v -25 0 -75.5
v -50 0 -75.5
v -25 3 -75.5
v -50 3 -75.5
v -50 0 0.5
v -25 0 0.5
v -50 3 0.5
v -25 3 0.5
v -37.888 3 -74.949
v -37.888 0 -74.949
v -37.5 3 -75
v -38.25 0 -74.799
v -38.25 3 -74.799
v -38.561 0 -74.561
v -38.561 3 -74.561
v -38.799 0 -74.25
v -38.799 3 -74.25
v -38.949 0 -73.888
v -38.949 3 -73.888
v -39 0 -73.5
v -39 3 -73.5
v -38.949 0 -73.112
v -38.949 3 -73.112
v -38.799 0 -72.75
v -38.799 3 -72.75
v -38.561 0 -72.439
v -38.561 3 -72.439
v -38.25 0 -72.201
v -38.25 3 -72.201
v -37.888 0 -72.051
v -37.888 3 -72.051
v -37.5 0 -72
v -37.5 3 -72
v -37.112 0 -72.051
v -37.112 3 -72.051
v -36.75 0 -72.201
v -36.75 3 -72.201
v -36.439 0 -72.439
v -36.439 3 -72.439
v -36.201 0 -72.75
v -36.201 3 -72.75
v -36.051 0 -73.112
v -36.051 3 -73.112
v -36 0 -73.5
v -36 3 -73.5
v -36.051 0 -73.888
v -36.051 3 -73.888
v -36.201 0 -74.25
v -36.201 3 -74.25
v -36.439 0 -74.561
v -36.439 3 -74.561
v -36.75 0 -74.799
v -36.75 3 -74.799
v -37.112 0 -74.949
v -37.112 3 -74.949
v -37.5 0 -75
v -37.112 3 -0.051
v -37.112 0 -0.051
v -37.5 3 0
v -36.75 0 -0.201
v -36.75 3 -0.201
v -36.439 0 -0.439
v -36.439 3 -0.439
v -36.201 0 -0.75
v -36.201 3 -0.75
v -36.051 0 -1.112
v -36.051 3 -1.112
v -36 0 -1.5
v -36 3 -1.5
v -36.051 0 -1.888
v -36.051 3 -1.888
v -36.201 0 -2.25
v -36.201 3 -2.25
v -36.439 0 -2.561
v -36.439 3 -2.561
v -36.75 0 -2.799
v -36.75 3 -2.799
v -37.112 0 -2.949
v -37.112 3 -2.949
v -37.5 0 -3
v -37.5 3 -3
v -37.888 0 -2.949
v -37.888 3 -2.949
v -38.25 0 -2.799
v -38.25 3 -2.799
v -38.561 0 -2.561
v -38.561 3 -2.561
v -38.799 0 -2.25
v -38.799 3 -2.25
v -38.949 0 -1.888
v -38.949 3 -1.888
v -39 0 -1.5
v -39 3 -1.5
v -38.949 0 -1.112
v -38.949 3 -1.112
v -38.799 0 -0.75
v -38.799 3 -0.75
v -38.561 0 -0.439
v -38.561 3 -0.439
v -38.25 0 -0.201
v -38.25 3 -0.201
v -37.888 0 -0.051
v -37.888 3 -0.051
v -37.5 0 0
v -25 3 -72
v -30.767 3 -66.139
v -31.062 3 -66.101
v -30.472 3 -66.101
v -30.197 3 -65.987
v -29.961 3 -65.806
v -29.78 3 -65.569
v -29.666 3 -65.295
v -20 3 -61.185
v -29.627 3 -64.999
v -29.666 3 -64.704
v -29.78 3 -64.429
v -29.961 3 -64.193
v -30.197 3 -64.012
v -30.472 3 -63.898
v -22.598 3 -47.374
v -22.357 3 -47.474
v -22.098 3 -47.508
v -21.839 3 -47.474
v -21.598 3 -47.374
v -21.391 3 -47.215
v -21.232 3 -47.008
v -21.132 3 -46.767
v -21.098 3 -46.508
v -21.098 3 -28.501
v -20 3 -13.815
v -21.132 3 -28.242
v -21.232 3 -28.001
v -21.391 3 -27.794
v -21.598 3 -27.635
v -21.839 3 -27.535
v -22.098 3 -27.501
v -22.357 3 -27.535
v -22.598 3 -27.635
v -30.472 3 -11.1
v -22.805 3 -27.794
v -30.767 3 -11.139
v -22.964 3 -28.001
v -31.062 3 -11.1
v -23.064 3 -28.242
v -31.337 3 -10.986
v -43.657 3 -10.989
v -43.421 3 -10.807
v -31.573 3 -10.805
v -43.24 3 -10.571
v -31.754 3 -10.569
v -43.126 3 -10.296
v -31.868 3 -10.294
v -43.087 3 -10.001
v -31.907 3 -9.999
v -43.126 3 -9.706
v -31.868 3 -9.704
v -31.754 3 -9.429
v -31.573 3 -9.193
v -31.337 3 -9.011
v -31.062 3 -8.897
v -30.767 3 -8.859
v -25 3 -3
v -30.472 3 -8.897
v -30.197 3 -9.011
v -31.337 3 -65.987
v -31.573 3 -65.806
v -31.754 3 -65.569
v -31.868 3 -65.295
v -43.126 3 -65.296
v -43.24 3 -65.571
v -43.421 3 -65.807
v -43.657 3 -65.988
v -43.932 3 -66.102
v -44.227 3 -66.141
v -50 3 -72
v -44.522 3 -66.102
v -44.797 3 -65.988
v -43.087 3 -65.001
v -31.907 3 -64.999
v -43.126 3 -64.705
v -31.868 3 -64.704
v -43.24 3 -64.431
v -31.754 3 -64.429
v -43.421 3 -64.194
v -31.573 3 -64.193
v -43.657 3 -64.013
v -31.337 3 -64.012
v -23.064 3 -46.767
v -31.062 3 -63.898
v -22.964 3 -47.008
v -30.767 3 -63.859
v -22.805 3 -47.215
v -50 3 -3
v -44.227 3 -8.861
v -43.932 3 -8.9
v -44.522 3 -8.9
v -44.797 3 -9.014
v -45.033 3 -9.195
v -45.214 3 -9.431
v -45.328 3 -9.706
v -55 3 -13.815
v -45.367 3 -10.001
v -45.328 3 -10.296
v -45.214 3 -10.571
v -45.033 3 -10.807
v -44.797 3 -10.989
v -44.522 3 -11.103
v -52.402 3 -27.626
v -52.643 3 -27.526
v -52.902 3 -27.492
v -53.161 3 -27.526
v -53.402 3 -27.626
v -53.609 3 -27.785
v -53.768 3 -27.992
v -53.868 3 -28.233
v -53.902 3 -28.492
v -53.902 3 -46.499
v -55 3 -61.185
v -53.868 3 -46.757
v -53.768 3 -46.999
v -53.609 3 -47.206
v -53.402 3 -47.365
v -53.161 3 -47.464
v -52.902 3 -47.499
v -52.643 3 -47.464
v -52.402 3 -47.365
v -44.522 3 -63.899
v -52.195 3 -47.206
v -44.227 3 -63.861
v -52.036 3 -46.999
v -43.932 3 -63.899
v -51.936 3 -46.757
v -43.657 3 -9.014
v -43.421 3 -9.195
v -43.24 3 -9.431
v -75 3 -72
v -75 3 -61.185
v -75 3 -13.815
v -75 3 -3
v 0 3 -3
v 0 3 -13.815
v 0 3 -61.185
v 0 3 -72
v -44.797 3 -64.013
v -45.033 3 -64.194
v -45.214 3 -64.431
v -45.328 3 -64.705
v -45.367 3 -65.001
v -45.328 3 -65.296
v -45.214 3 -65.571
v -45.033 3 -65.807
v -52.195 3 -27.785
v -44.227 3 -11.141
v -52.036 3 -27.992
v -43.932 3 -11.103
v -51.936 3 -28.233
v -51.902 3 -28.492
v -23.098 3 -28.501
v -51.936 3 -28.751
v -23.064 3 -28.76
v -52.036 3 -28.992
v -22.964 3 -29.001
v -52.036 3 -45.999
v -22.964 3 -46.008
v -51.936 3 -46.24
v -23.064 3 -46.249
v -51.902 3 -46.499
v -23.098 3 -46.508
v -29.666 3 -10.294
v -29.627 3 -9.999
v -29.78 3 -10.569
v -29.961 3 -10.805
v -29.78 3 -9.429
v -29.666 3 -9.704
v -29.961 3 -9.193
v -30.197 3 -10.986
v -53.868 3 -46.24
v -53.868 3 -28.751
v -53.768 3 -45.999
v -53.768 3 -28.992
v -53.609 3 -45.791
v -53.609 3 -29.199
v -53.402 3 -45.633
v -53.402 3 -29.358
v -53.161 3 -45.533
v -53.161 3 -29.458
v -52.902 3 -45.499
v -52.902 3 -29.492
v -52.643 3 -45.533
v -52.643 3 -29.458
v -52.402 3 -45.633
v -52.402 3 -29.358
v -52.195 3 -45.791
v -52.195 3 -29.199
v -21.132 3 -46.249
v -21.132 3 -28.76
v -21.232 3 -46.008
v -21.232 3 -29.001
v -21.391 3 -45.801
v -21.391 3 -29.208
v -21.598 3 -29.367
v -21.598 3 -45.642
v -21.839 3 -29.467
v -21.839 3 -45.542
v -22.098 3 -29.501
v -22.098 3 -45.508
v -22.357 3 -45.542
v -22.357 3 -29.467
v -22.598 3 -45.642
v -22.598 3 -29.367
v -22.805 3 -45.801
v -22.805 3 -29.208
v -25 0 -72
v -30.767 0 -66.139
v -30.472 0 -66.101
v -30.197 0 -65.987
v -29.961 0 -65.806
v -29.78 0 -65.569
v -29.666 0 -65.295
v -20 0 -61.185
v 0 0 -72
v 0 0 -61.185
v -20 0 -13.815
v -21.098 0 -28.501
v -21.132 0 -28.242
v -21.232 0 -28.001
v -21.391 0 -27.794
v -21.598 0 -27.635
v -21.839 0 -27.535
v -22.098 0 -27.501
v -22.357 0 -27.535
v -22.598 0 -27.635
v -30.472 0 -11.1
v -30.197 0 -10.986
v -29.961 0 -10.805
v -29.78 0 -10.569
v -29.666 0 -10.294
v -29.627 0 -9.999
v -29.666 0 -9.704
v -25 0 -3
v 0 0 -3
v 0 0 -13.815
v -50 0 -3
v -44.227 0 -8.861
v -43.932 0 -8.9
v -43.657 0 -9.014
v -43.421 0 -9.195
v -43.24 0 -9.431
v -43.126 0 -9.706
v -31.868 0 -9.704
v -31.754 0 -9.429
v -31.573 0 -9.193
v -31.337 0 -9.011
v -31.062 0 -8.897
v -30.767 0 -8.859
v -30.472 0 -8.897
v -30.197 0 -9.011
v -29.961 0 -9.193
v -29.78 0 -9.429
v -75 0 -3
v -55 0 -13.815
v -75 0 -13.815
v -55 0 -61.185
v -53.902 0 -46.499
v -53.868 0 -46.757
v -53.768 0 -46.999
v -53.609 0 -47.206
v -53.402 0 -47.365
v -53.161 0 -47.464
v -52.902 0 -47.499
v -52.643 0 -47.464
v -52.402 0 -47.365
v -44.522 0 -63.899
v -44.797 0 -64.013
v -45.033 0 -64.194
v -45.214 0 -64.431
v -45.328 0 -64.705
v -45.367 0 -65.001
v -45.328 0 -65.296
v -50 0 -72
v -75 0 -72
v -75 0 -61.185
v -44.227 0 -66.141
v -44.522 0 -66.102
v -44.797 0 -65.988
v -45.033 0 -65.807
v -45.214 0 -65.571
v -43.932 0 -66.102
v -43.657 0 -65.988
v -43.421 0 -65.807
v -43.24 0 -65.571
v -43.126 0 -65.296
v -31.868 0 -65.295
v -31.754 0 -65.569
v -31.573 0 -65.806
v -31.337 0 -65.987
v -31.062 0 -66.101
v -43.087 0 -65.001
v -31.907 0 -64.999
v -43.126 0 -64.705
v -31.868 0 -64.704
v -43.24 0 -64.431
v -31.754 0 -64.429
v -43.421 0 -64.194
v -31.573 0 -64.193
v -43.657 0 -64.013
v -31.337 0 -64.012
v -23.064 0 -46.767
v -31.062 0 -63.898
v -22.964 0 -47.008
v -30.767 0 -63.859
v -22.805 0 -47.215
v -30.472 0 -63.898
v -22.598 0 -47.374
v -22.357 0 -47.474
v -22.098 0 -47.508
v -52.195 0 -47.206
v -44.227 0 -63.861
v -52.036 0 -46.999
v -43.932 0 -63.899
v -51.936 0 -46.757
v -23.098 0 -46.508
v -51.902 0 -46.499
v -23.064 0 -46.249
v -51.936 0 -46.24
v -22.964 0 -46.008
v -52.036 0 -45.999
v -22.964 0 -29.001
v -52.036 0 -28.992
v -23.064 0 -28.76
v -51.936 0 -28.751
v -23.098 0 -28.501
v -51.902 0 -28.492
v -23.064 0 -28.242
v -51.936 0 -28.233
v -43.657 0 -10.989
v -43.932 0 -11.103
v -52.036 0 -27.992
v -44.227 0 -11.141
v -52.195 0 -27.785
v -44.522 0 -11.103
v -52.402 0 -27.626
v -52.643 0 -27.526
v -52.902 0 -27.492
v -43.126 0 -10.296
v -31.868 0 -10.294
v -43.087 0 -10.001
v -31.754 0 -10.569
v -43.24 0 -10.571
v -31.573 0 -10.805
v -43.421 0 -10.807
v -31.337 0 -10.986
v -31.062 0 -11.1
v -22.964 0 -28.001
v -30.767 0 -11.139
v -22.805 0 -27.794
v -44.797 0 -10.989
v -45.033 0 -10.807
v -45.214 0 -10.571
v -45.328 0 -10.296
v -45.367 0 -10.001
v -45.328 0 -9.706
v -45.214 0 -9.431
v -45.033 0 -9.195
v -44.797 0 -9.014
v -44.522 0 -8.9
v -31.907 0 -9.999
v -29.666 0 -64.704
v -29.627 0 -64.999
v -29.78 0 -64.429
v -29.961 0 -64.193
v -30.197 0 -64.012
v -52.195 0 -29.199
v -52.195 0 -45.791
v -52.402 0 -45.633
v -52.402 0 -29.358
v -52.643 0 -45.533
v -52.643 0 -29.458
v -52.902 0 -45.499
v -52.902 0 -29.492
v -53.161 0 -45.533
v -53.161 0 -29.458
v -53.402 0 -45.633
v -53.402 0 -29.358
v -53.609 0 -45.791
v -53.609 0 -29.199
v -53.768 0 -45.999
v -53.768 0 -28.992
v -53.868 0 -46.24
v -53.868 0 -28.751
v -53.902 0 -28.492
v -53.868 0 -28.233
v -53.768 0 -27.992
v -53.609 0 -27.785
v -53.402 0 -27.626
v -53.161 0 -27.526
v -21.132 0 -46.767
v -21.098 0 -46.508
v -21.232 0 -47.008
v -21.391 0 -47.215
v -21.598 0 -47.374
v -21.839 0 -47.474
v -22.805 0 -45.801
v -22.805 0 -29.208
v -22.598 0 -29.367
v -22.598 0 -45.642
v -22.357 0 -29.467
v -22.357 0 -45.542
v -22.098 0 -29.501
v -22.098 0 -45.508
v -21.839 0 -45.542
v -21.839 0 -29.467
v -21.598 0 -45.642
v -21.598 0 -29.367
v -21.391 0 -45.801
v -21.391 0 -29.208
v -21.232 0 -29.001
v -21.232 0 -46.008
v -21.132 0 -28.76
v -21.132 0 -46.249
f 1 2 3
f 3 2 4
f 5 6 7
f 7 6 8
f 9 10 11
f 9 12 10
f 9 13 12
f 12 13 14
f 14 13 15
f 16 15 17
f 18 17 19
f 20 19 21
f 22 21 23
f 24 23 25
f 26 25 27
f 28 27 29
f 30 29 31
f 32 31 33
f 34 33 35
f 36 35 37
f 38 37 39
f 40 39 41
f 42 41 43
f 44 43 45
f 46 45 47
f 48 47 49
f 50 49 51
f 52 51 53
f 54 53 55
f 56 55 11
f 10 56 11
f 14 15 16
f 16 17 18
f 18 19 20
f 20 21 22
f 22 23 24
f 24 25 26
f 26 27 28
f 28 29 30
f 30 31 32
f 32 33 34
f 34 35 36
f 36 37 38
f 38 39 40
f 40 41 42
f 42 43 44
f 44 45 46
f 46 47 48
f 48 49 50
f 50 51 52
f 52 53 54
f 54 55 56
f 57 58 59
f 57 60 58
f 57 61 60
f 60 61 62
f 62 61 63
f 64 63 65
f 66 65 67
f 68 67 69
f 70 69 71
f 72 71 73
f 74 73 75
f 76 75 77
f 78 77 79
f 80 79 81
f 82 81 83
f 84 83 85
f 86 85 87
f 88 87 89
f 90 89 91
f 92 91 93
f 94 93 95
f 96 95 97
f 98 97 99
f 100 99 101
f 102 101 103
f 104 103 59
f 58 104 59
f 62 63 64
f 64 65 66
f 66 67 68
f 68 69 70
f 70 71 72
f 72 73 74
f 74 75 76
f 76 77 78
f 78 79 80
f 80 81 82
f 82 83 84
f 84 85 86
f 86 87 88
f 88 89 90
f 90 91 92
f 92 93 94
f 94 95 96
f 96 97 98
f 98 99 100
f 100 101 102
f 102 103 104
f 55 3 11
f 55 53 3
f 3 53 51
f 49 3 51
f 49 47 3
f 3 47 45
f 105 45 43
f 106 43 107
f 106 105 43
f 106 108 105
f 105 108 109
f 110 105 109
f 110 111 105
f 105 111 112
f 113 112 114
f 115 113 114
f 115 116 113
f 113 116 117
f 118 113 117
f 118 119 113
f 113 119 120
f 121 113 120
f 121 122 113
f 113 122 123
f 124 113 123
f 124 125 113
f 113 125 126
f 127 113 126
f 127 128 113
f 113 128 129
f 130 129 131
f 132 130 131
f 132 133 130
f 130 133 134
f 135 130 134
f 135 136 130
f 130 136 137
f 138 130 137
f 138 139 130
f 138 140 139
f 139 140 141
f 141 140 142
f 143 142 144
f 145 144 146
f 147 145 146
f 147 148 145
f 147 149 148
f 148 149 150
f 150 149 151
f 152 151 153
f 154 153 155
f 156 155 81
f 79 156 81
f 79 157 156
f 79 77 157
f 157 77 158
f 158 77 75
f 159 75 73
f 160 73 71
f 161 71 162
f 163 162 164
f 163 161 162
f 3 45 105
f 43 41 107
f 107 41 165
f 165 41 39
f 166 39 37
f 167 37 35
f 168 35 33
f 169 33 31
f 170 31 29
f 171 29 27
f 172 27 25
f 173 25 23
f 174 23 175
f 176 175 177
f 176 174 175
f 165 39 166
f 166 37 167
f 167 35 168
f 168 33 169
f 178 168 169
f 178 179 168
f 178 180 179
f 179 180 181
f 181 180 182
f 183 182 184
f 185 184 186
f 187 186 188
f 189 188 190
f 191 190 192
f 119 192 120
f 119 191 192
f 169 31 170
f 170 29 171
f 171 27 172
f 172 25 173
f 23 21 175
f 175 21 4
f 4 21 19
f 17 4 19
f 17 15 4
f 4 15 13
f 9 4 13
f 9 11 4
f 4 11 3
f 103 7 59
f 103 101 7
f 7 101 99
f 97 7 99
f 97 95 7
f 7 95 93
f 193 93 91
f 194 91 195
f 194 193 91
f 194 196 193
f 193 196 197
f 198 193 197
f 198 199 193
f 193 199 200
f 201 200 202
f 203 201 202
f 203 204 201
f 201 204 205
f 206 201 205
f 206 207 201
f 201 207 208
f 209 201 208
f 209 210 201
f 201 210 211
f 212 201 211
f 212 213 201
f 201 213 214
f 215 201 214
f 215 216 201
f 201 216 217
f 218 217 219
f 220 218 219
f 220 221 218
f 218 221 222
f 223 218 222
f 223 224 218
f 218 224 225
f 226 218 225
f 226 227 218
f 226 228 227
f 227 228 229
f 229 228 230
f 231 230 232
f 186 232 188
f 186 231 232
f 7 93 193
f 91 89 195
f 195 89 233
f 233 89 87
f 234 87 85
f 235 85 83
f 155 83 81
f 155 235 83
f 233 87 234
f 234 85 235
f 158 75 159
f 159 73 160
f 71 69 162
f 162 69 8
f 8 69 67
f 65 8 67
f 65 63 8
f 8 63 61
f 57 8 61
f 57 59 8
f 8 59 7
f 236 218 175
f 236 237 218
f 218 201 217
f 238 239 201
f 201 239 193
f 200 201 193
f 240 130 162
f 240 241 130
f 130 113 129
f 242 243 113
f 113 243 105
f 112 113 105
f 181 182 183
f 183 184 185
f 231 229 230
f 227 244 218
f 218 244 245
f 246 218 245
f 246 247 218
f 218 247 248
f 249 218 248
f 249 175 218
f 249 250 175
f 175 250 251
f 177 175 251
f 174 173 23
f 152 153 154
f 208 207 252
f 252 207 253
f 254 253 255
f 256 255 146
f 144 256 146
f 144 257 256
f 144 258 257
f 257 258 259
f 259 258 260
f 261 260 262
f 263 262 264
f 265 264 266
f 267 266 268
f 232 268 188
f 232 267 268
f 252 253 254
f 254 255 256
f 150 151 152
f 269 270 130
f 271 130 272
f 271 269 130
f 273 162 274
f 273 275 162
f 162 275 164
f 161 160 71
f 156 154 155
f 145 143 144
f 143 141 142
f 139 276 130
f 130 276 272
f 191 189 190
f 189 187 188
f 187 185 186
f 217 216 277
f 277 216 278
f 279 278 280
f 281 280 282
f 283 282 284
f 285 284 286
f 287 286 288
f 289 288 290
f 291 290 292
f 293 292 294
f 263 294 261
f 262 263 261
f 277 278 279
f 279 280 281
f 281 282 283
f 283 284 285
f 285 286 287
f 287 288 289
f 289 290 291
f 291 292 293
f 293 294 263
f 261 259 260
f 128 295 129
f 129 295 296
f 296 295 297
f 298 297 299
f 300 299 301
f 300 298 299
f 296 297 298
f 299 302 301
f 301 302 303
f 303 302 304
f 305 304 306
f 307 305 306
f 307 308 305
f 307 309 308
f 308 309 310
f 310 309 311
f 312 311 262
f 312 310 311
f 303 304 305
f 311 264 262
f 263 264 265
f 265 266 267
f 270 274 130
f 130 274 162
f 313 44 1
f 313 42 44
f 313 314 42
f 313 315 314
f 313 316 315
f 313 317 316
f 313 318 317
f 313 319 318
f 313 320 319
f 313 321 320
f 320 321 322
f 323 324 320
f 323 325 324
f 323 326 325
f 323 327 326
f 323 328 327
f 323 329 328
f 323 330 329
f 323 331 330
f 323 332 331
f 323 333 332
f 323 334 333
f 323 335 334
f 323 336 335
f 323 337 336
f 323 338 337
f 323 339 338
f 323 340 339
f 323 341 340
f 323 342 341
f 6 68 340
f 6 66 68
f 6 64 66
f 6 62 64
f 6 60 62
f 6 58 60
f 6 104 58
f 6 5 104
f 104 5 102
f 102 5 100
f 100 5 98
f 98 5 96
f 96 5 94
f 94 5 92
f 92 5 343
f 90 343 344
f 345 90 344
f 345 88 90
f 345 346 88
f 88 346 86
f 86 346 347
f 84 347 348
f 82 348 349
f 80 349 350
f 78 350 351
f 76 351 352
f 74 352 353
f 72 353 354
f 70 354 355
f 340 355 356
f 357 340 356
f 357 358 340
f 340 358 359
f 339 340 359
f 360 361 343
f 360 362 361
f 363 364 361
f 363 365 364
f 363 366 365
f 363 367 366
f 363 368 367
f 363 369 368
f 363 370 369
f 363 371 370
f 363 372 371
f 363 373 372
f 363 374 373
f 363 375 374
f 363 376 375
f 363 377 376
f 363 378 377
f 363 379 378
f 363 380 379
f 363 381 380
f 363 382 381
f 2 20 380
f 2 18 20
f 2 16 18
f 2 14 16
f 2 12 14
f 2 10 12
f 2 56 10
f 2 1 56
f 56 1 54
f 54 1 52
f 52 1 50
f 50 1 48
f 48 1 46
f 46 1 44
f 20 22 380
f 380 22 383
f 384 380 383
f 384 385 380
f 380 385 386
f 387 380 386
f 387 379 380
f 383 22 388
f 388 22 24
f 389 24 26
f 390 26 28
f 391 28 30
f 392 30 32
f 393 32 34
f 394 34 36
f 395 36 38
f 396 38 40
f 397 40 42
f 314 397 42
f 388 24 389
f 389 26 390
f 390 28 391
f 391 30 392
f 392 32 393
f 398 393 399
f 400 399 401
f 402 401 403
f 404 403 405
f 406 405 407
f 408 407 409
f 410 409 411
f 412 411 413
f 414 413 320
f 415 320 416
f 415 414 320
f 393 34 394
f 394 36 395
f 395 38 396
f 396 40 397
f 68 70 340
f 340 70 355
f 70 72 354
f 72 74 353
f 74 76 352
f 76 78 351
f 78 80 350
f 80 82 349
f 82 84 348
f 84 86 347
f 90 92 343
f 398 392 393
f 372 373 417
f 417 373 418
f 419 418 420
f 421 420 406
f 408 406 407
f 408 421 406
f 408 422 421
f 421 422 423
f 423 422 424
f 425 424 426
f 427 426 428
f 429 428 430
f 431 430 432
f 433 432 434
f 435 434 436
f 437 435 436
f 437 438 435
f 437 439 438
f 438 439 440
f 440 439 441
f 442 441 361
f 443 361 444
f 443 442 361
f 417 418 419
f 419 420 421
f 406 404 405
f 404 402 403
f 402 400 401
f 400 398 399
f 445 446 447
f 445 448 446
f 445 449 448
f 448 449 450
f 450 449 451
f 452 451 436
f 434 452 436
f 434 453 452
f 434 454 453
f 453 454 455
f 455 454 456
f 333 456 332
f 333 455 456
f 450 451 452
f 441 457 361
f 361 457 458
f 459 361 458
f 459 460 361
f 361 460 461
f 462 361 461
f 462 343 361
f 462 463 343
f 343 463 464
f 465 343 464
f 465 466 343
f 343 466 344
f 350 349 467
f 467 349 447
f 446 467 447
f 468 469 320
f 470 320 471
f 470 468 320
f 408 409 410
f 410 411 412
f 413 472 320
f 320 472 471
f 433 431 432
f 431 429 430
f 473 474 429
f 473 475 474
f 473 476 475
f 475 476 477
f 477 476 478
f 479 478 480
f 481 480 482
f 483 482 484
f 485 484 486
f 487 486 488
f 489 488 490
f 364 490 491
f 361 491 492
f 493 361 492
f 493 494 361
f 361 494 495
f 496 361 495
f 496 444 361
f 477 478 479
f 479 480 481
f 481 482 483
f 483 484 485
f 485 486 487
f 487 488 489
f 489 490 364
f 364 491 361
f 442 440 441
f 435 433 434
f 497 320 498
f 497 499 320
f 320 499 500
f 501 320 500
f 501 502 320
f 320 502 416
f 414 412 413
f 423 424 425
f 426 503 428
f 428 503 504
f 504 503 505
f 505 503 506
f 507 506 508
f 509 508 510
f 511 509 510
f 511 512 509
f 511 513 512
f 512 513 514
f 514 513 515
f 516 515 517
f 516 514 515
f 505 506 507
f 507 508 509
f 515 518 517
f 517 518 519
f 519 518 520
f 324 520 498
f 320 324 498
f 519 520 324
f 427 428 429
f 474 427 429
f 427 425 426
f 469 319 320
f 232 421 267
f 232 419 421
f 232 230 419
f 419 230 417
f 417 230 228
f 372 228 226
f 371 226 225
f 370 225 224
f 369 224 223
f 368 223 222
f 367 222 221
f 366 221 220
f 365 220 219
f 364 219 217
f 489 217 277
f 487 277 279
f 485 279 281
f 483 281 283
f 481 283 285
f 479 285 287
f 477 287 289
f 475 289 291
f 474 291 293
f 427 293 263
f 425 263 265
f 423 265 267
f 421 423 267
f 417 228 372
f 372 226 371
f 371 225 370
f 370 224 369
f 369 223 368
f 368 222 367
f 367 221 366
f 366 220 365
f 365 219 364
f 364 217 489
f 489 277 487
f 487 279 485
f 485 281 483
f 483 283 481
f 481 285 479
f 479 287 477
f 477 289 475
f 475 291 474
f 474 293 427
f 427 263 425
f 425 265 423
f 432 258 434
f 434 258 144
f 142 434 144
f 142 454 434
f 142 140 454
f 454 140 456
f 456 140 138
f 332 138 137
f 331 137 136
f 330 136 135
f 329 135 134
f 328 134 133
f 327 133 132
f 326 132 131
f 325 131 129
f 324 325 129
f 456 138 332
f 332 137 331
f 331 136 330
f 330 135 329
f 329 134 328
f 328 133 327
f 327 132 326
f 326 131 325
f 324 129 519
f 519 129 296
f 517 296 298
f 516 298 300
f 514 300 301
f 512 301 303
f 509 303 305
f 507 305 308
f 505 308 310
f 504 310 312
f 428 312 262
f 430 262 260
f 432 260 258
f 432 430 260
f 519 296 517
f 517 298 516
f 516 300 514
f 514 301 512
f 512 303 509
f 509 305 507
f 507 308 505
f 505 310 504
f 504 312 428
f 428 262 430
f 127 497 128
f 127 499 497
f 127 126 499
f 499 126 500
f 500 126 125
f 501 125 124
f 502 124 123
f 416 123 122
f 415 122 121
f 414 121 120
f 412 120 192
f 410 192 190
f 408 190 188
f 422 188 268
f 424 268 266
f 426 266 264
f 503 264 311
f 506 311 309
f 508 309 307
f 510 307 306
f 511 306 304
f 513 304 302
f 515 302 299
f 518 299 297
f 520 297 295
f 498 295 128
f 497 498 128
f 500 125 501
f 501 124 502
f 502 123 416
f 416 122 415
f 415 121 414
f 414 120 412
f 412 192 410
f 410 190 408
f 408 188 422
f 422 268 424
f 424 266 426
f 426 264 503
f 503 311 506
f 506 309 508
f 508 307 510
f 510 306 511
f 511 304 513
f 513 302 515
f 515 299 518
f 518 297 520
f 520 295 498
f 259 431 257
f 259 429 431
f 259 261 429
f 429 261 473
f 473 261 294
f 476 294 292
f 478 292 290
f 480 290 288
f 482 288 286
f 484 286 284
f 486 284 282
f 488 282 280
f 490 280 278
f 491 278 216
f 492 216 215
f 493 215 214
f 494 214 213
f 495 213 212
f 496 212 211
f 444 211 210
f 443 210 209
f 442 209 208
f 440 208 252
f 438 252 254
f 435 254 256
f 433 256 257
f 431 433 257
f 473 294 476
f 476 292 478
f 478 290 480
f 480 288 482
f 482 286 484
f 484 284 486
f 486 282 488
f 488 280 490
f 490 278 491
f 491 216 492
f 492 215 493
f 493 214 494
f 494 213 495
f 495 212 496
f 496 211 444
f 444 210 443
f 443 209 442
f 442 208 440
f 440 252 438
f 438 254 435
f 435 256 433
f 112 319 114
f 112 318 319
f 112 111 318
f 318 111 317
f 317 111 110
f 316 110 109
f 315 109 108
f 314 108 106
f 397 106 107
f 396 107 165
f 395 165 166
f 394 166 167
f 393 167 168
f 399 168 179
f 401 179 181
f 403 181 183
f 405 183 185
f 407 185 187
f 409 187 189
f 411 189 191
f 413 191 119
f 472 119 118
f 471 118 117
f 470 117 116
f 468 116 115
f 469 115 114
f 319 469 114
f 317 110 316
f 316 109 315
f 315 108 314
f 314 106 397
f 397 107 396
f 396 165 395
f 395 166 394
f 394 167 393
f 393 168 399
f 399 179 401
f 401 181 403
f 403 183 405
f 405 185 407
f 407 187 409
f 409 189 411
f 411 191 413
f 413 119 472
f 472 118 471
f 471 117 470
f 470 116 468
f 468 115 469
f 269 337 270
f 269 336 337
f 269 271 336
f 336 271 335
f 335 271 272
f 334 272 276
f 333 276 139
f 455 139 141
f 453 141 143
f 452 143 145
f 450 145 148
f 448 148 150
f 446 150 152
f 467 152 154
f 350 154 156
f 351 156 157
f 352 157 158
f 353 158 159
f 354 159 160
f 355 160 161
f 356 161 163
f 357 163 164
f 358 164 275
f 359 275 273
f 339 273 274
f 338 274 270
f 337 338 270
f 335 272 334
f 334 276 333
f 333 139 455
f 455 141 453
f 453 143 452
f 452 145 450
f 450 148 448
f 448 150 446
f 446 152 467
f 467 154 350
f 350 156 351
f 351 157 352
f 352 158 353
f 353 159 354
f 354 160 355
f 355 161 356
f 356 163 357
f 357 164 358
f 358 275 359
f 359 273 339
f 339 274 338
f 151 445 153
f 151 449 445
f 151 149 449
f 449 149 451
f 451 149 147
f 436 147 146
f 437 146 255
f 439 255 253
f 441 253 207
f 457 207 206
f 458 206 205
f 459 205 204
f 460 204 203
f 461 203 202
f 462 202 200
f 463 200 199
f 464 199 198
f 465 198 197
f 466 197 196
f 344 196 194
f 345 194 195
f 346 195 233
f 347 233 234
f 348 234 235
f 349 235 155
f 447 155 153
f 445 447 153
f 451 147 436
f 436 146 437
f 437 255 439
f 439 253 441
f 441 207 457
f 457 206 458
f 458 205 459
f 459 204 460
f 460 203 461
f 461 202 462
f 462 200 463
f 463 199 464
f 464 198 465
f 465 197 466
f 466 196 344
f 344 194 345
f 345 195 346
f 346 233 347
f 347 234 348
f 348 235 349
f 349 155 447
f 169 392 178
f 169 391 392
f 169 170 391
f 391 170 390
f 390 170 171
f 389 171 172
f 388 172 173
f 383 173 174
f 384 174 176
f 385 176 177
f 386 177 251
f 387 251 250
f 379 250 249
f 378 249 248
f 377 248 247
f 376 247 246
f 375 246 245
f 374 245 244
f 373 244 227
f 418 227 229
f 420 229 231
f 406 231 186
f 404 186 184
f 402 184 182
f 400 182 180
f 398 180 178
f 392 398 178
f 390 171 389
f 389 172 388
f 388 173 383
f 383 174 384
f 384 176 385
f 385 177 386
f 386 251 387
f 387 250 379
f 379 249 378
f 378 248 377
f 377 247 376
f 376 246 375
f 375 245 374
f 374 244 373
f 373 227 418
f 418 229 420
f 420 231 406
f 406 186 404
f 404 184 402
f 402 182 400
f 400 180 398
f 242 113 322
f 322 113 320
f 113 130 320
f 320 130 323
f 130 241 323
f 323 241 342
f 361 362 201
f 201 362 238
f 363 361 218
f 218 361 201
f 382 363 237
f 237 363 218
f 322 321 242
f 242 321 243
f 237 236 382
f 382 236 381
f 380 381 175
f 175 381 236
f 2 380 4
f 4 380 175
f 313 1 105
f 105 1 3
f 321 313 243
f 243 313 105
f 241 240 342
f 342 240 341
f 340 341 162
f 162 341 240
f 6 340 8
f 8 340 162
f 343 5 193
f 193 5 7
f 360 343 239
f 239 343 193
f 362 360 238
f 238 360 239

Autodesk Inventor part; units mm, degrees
ref_plane "YZ Plane" through (0, 0, 0) normal (1, 0, 0) x (0, 1, 0)
ref_plane "XZ Plane" through (0, 0, 0) normal (0, 1, 0) x (-1, 0, 0)
ref_plane "XY Plane" through (0, 0, 0) normal (0, 0, 1) x (1, 0, 0)
sketch "Sketch1" plane through (0, 0, 0) normal (0, 1, 0) x (-1, 0, 0)
  line L0 (25, 0) -> (50, 0)
  line L1 (50, -75) -> (25, -75)
  line L2 (75, 0) -> (75, -25)
  line L3 (75, -25) -> (72, -25)
  line L4 (75, -75) -> (75, -50)
  line L5 (75, -50) -> (72, -50)
  line L6 (72, -50) -> (72, -25)
  line L7 (0, -25) -> (3, -25)
  line L8 (3, -25) -> (3, -50)
  line L9 (3, -50) -> (0, -50)
  line L10 (0, -75) -> (3, -75)
  line L11 (25, -75) -> (25, -72)
  line L12 (25, -72) -> (0, -72)
  line L13 (75, -75) -> (72, -75)
  line L14 (50, -75) -> (50, -72)
  line L15 (50, -72) -> (75, -72)
  line L16 (50, 0) -> (50, -3)
  line L17 (50, -3) -> (75, -3)
  line L18 (25, 0) -> (25, -3)
  line L19 (25, -3) -> (0, -3)
  line L20 (75, 0) -> (75, -25)
  line L21 (75, -50) -> (75, -75)
  line L22 (0, -75) -> (0, -50)
  line L23 (0, -25) -> (0, 0)
  dimension "d0" = 75
  dimension "d1" = 75
  dimension "d2" = 25
  dimension "d3" = 3
  dimension "d4" = 25
  dimension "d5" = 3
  dimension "d6" = 25
  dimension "d7" = 3
  dimension "d8" = 25
  dimension "d9" = 3
  dimension "d10" = 3
extrude "Extrusion1" add sketch "Sketch1" along normal blind 3
sketch "Sketch3" plane through (0, 0, 0) normal (0, -1, 0) x (1, 0, 0)
  line L0 (-3, -13.8146) -> (0, -13.8146) projected
  line L1 (0, -61.1854) -> (-3, -61.1854) projected
  line L2 (-72, -61.1854) -> (-75, -61.1854) projected
  line L3 (-75, -13.8146) -> (-72, -13.8146) projected
  line L4 (0, -61.1854) -> (-20, -61.1854)
  line L5 (-20, -61.1854) -> (-20, -13.8146)
  line L6 (0, -13.8146) -> (-20, -13.8146)
  line L7 (-75, -13.8146) -> (-55, -13.8146)
  line L8 (-55, -13.8146) -> (-55, -61.1854)
  line L9 (-75, -61.1854) -> (-55, -61.1854)
  line L10 (-75, -61.1854) -> (-75, -13.8146)
  line L11 (0, -13.8146) -> (0, -61.1854)
  line L12 (0, -50) -> (0, -72) projected
  point P0 (0, 0)
  dimension "d13" = 20
  dimension "d14" = 20
extrude "Extrusion2" cut sketch "Sketch3" along normal mid plane 25.4
sketch "Sketch4" plane through (0, 0, 0) normal (0, -1, 0) x (1, 0, 0)
  circle A0 centre (-30.7671, -9.9986) radius 1.14 projected
  circle A1 centre (-44.2271, -10.0014) radius 1.14 projected
  arc A2 (-31.5, -28.5) -> (-33.5, -28.5) centre (-32.5, -28.5) ccw projected
  circle A3 centre (-30.7671, -64.9995) radius 1.14 projected
  circle A4 centre (-44.2271, -65.0005) radius 1.14 projected
  arc A5 (-41.5, -28.5) -> (-43.5, -28.5) centre (-42.5, -28.5) ccw projected
  circle A6 centre (-42.5, -28.5) radius 1
  circle A7 centre (-32.5, -28.5) radius 1
  circle A8 centre (-30.7671, -64.9995) radius 1.14
  circle A9 centre (-44.2271, -65.0005) radius 1.14
  circle A10 centre (-44.2271, -10.0014) radius 1.14
  circle A11 centre (-30.7671, -9.9986) radius 1.14
  arc A12 (-33.5, -46.5) -> (-31.5, -46.5) centre (-32.5, -46.5) ccw projected
  arc A13 (-43.5, -46.5) -> (-41.5, -46.5) centre (-42.5, -46.5) ccw projected
  circle A14 centre (-32.5, -46.5) radius 1
  circle A15 centre (-42.5, -46.5) radius 1
  point P0 (0, 0)
extrude "Extrusion3" cut sketch "Sketch4" against normal blind 3 contours A0 | A1 | A3 | A4
sketch "Sketch5" plane through (0, 0, 0) normal (0, -1, 0) x (1, 0, 0)
  line L0 (-17.5, -6) -> (-17.5, -17) projected
  line L1 (-17.5, -17) -> (-29.5, -17) projected
  line L2 (-47, -17) -> (-56, -17) projected
  line L3 (-56, -6) -> (-56, -17) projected
  line L4 (-17.5, -17) -> (-29.5, -17)
  line L5 (-29.5, -17) -> (-29.5, -6)
  line L6 (-29.5, -6) -> (-17.5, -6)
  line L7 (-17.5, -6) -> (-17.5, -17)
  line L8 (-56, -17) -> (-47, -17)
  line L9 (-47, -17) -> (-47, -6)
  line L10 (-47, -6) -> (-56, -6)
  line L11 (-56, -6) -> (-56, -17)
  arc A0 (-23.098, -46.5011) -> (-21.098, -46.5011) centre (-22.098, -46.5011) ccw projected
  circle A1 centre (-22.098, -28.5012) radius 1 projected
  arc A2 (-21.098, -28.5011) -> (-23.098, -28.5011) centre (-22.098, -28.5011) ccw projected
  arc A3 (-23.098, -46.5011) -> (-21.098, -46.5011) centre (-22.098, -46.5011) ccw projected
  circle A4 centre (-22.098, -46.5078) radius 1 projected
  line L12 (-72, -25) -> (-72, -3) projected
  line L13 (-25, -3) -> (-3, -3) projected
  line L14 (-50, -72) -> (-72, -72) projected
  circle A5 centre (-52.902, -46.4986) radius 1 projected
  arc A6 (-51.902, -28.4986) -> (-53.902, -28.4986) centre (-52.902, -28.4986) ccw projected
  circle A7 centre (-52.902, -28.492) radius 1 projected
  circle A8 centre (-37.5, -1.5) radius 1.5 projected
  circle A9 centre (-1.5, -37.5) radius 1.5 projected
  circle A10 centre (-37.5, -73.5) radius 1.5 projected
  circle A11 centre (-73.5, -36) radius 1.5 projected
  circle A12 centre (-73.5, -36) radius 1.5 projected
  circle A13 centre (-73.5, -36) radius 1.5 projected
  circle A14 centre (-37.5, -1.5) radius 1.5 projected
  circle A15 centre (-37.5, -73.5) radius 1.5 projected
  circle A16 centre (-37.5, -73.5) radius 1.5 projected
  line L15 (-72, -50) -> (-75, -50) projected
  circle A17 centre (-37.5, -73.5) radius 1.5 projected
  circle A18 centre (-37.5, -73.5) radius 1.5 projected
  circle A19 centre (-37.5, -73.5) radius 1.5 projected
  circle A20 centre (-37.5, -73.5) radius 1.5 projected
  circle A21 centre (-37.5, -73.5) radius 1.5 projected
  circle A22 centre (-37.5, -73.5) radius 1.5 projected
  circle A23 centre (-37.5, -73.5) radius 1.5 projected
  circle A24 centre (-37.5, -73.5) radius 1.5 projected
  circle A25 centre (-37.5, -73.5) radius 1.5 projected
  circle A26 centre (-37.5, -73.5) radius 1.5 projected
  circle A27 centre (-37.5, -73.5) radius 1.5 projected
  circle A28 centre (-37.5, -73.5) radius 1.5 projected
  circle A29 centre (-37.5, -1.5) radius 1.5 projected
  circle A30 centre (-37.5, -73.5) radius 1.5 projected
  circle A31 centre (-37.5, -73.5) radius 1.5 projected
  circle A32 centre (-36.0014, -62.75) radius 1.5 projected
  line L16 (-50, -72) -> (-50, -75.5) projected
  line L17 (-72, -72) -> (-72, -50) projected
  line L18 (-75, -50) -> (-75, -25) projected
  line L19 (-75, -25) -> (-72, -25) projected
  line L20 (-72, -3) -> (-50, -3) projected
  line L21 (-50, -3) -> (-50, 0.5) projected
  line L22 (-25, 0.5) -> (-50, 0.5) projected
  line L23 (-25, -3) -> (-25, 0.5) projected
  line L24 (-3, -3) -> (-3, -25) projected
  line L25 (-3, -25) -> (0, -25) projected
  line L26 (0, -25) -> (0, -50) projected
  line L27 (0, -50) -> (-3, -50) projected
  line L28 (-3, -50) -> (-3, -72) projected
  line L29 (-3, -72) -> (-25, -72) projected
  line L30 (-25, -72) -> (-25, -75.5) projected
  line L31 (-50, -75.5) -> (-25, -75.5) projected
  point P0 (0, 0)
  point P1 (-37.5, -1.5)
  point P2 (-37.5, 0)
extrude "Extrusion4" cut sketch "Sketch5" against normal blind 25.4 contours A4 A0 | A0 A4 | A1 | A5 | A7 A6 | A6 A7
sketch "Sketch6" plane through (0, 0, 0) normal (0, -1, 0) x (1, 0, 0)
  circle A0 centre (-52.902, -46.4986) radius 1 projected
  arc A1 (-21.098, -28.5011) -> (-23.098, -28.5011) centre (-22.098, -28.5011) ccw projected
  arc A2 (-23.098, -28.5011) -> (-21.098, -28.5011) centre (-22.098, -28.5012) ccw projected
  circle A3 centre (-22.098, -46.5078) radius 1 projected
  circle A4 centre (-52.902, -28.492) radius 1 projected
  circle A5 centre (-30.7671, -64.9995) radius 1.14 projected
  circle A6 centre (-30.7671, -9.9986) radius 1.14 projected
  circle A7 centre (-44.2271, -10.0014) radius 1.14 projected
  circle A8 centre (-44.2271, -65.0005) radius 1.14 projected
  line L0 (0, -61.1854) -> (-20, -61.1854) projected
  line L1 (-20, -61.1854) -> (-20, -13.8146) projected
  line L2 (-20, -13.8146) -> (0, -13.8146) projected
  line L3 (0, -3) -> (0, -13.8146) projected
  line L4 (-25, -3) -> (0, -3) projected
  line L5 (-25, 0) -> (-25, -3) projected
  line L6 (-50, 0) -> (-25, 0) projected
  line L7 (-50, -3) -> (-50, 0) projected
  line L8 (-75, -3) -> (-50, -3) projected
  line L9 (-75, -13.8146) -> (-75, -3) projected
  line L10 (-75, -13.8146) -> (-55, -13.8146) projected
  line L11 (-55, -13.8146) -> (-55, -61.1854) projected
  line L12 (-55, -61.1854) -> (-75, -61.1854) projected
  line L13 (-75, -72) -> (-75, -61.1854) projected
  line L14 (-50, -72) -> (-75, -72) projected
  line L15 (-50, -75) -> (-50, -72) projected
  line L16 (-25, -75) -> (-50, -75) projected
  line L17 (-25, -72) -> (-25, -75) projected
  line L18 (0, -72) -> (-25, -72) projected
  line L19 (0, -61.1854) -> (0, -72) projected
  circle A9 centre (-37.5, -73.5) radius 1.5
  circle A10 centre (-37.5, -1.5) radius 1.5
  point P0 (0, 0)
  dimension "d21" = 3
  dimension "d25" = 3
extrude "Extrusion5" cut sketch "Sketch6" against normal blind 25.4 contours A10 | A9
sketch "Sketch7" plane through (-50, 0, 0) normal (0, 0, 1) x (1, 0, 0)
  line L0 (12.5, 0) -> (12.5, 3) projected
  line L1 (12.5, 0) -> (25, 0) projected
  line L2 (25, 0) -> (25, 3) projected
  line L3 (12.5, 3) -> (25, 3) projected
  line L4 (0, 3) -> (12.5, 3) projected
  line L5 (0, 0) -> (0, 3) projected
  line L6 (0, 0) -> (12.5, 0) projected
  line L7 (12.5, 0) -> (12.5, 3) projected
  line L8 (0, 3) -> (12.5, 3) projected
  line L9 (0, 0) -> (0, 3) projected
  line L10 (0, 0) -> (12.5, 0) projected
  line L11 (12.5, 0) -> (25, 0) projected
  line L12 (25, 0) -> (25, 3) projected
  line L13 (12.5, 3) -> (25, 3) projected
  point P0 (50, 0)
extrude "Extrusion6" add sketch "Sketch7" along normal blind 0.5
sketch "Sketch8" plane through (-50, 0, -75) normal (0, 0, -1) x (-1, 0, 0)
  line L0 (0, 0) -> (-25, 0) projected
  line L1 (-25, 0) -> (-25, 3) projected
  line L2 (-25, 3) -> (0, 3) projected
  line L3 (0, 3) -> (0, 0) projected
  point P0 (-50, 0)
extrude "Extrusion7" add sketch "Sketch8" along normal blind 0.5
properties part number "Base"
